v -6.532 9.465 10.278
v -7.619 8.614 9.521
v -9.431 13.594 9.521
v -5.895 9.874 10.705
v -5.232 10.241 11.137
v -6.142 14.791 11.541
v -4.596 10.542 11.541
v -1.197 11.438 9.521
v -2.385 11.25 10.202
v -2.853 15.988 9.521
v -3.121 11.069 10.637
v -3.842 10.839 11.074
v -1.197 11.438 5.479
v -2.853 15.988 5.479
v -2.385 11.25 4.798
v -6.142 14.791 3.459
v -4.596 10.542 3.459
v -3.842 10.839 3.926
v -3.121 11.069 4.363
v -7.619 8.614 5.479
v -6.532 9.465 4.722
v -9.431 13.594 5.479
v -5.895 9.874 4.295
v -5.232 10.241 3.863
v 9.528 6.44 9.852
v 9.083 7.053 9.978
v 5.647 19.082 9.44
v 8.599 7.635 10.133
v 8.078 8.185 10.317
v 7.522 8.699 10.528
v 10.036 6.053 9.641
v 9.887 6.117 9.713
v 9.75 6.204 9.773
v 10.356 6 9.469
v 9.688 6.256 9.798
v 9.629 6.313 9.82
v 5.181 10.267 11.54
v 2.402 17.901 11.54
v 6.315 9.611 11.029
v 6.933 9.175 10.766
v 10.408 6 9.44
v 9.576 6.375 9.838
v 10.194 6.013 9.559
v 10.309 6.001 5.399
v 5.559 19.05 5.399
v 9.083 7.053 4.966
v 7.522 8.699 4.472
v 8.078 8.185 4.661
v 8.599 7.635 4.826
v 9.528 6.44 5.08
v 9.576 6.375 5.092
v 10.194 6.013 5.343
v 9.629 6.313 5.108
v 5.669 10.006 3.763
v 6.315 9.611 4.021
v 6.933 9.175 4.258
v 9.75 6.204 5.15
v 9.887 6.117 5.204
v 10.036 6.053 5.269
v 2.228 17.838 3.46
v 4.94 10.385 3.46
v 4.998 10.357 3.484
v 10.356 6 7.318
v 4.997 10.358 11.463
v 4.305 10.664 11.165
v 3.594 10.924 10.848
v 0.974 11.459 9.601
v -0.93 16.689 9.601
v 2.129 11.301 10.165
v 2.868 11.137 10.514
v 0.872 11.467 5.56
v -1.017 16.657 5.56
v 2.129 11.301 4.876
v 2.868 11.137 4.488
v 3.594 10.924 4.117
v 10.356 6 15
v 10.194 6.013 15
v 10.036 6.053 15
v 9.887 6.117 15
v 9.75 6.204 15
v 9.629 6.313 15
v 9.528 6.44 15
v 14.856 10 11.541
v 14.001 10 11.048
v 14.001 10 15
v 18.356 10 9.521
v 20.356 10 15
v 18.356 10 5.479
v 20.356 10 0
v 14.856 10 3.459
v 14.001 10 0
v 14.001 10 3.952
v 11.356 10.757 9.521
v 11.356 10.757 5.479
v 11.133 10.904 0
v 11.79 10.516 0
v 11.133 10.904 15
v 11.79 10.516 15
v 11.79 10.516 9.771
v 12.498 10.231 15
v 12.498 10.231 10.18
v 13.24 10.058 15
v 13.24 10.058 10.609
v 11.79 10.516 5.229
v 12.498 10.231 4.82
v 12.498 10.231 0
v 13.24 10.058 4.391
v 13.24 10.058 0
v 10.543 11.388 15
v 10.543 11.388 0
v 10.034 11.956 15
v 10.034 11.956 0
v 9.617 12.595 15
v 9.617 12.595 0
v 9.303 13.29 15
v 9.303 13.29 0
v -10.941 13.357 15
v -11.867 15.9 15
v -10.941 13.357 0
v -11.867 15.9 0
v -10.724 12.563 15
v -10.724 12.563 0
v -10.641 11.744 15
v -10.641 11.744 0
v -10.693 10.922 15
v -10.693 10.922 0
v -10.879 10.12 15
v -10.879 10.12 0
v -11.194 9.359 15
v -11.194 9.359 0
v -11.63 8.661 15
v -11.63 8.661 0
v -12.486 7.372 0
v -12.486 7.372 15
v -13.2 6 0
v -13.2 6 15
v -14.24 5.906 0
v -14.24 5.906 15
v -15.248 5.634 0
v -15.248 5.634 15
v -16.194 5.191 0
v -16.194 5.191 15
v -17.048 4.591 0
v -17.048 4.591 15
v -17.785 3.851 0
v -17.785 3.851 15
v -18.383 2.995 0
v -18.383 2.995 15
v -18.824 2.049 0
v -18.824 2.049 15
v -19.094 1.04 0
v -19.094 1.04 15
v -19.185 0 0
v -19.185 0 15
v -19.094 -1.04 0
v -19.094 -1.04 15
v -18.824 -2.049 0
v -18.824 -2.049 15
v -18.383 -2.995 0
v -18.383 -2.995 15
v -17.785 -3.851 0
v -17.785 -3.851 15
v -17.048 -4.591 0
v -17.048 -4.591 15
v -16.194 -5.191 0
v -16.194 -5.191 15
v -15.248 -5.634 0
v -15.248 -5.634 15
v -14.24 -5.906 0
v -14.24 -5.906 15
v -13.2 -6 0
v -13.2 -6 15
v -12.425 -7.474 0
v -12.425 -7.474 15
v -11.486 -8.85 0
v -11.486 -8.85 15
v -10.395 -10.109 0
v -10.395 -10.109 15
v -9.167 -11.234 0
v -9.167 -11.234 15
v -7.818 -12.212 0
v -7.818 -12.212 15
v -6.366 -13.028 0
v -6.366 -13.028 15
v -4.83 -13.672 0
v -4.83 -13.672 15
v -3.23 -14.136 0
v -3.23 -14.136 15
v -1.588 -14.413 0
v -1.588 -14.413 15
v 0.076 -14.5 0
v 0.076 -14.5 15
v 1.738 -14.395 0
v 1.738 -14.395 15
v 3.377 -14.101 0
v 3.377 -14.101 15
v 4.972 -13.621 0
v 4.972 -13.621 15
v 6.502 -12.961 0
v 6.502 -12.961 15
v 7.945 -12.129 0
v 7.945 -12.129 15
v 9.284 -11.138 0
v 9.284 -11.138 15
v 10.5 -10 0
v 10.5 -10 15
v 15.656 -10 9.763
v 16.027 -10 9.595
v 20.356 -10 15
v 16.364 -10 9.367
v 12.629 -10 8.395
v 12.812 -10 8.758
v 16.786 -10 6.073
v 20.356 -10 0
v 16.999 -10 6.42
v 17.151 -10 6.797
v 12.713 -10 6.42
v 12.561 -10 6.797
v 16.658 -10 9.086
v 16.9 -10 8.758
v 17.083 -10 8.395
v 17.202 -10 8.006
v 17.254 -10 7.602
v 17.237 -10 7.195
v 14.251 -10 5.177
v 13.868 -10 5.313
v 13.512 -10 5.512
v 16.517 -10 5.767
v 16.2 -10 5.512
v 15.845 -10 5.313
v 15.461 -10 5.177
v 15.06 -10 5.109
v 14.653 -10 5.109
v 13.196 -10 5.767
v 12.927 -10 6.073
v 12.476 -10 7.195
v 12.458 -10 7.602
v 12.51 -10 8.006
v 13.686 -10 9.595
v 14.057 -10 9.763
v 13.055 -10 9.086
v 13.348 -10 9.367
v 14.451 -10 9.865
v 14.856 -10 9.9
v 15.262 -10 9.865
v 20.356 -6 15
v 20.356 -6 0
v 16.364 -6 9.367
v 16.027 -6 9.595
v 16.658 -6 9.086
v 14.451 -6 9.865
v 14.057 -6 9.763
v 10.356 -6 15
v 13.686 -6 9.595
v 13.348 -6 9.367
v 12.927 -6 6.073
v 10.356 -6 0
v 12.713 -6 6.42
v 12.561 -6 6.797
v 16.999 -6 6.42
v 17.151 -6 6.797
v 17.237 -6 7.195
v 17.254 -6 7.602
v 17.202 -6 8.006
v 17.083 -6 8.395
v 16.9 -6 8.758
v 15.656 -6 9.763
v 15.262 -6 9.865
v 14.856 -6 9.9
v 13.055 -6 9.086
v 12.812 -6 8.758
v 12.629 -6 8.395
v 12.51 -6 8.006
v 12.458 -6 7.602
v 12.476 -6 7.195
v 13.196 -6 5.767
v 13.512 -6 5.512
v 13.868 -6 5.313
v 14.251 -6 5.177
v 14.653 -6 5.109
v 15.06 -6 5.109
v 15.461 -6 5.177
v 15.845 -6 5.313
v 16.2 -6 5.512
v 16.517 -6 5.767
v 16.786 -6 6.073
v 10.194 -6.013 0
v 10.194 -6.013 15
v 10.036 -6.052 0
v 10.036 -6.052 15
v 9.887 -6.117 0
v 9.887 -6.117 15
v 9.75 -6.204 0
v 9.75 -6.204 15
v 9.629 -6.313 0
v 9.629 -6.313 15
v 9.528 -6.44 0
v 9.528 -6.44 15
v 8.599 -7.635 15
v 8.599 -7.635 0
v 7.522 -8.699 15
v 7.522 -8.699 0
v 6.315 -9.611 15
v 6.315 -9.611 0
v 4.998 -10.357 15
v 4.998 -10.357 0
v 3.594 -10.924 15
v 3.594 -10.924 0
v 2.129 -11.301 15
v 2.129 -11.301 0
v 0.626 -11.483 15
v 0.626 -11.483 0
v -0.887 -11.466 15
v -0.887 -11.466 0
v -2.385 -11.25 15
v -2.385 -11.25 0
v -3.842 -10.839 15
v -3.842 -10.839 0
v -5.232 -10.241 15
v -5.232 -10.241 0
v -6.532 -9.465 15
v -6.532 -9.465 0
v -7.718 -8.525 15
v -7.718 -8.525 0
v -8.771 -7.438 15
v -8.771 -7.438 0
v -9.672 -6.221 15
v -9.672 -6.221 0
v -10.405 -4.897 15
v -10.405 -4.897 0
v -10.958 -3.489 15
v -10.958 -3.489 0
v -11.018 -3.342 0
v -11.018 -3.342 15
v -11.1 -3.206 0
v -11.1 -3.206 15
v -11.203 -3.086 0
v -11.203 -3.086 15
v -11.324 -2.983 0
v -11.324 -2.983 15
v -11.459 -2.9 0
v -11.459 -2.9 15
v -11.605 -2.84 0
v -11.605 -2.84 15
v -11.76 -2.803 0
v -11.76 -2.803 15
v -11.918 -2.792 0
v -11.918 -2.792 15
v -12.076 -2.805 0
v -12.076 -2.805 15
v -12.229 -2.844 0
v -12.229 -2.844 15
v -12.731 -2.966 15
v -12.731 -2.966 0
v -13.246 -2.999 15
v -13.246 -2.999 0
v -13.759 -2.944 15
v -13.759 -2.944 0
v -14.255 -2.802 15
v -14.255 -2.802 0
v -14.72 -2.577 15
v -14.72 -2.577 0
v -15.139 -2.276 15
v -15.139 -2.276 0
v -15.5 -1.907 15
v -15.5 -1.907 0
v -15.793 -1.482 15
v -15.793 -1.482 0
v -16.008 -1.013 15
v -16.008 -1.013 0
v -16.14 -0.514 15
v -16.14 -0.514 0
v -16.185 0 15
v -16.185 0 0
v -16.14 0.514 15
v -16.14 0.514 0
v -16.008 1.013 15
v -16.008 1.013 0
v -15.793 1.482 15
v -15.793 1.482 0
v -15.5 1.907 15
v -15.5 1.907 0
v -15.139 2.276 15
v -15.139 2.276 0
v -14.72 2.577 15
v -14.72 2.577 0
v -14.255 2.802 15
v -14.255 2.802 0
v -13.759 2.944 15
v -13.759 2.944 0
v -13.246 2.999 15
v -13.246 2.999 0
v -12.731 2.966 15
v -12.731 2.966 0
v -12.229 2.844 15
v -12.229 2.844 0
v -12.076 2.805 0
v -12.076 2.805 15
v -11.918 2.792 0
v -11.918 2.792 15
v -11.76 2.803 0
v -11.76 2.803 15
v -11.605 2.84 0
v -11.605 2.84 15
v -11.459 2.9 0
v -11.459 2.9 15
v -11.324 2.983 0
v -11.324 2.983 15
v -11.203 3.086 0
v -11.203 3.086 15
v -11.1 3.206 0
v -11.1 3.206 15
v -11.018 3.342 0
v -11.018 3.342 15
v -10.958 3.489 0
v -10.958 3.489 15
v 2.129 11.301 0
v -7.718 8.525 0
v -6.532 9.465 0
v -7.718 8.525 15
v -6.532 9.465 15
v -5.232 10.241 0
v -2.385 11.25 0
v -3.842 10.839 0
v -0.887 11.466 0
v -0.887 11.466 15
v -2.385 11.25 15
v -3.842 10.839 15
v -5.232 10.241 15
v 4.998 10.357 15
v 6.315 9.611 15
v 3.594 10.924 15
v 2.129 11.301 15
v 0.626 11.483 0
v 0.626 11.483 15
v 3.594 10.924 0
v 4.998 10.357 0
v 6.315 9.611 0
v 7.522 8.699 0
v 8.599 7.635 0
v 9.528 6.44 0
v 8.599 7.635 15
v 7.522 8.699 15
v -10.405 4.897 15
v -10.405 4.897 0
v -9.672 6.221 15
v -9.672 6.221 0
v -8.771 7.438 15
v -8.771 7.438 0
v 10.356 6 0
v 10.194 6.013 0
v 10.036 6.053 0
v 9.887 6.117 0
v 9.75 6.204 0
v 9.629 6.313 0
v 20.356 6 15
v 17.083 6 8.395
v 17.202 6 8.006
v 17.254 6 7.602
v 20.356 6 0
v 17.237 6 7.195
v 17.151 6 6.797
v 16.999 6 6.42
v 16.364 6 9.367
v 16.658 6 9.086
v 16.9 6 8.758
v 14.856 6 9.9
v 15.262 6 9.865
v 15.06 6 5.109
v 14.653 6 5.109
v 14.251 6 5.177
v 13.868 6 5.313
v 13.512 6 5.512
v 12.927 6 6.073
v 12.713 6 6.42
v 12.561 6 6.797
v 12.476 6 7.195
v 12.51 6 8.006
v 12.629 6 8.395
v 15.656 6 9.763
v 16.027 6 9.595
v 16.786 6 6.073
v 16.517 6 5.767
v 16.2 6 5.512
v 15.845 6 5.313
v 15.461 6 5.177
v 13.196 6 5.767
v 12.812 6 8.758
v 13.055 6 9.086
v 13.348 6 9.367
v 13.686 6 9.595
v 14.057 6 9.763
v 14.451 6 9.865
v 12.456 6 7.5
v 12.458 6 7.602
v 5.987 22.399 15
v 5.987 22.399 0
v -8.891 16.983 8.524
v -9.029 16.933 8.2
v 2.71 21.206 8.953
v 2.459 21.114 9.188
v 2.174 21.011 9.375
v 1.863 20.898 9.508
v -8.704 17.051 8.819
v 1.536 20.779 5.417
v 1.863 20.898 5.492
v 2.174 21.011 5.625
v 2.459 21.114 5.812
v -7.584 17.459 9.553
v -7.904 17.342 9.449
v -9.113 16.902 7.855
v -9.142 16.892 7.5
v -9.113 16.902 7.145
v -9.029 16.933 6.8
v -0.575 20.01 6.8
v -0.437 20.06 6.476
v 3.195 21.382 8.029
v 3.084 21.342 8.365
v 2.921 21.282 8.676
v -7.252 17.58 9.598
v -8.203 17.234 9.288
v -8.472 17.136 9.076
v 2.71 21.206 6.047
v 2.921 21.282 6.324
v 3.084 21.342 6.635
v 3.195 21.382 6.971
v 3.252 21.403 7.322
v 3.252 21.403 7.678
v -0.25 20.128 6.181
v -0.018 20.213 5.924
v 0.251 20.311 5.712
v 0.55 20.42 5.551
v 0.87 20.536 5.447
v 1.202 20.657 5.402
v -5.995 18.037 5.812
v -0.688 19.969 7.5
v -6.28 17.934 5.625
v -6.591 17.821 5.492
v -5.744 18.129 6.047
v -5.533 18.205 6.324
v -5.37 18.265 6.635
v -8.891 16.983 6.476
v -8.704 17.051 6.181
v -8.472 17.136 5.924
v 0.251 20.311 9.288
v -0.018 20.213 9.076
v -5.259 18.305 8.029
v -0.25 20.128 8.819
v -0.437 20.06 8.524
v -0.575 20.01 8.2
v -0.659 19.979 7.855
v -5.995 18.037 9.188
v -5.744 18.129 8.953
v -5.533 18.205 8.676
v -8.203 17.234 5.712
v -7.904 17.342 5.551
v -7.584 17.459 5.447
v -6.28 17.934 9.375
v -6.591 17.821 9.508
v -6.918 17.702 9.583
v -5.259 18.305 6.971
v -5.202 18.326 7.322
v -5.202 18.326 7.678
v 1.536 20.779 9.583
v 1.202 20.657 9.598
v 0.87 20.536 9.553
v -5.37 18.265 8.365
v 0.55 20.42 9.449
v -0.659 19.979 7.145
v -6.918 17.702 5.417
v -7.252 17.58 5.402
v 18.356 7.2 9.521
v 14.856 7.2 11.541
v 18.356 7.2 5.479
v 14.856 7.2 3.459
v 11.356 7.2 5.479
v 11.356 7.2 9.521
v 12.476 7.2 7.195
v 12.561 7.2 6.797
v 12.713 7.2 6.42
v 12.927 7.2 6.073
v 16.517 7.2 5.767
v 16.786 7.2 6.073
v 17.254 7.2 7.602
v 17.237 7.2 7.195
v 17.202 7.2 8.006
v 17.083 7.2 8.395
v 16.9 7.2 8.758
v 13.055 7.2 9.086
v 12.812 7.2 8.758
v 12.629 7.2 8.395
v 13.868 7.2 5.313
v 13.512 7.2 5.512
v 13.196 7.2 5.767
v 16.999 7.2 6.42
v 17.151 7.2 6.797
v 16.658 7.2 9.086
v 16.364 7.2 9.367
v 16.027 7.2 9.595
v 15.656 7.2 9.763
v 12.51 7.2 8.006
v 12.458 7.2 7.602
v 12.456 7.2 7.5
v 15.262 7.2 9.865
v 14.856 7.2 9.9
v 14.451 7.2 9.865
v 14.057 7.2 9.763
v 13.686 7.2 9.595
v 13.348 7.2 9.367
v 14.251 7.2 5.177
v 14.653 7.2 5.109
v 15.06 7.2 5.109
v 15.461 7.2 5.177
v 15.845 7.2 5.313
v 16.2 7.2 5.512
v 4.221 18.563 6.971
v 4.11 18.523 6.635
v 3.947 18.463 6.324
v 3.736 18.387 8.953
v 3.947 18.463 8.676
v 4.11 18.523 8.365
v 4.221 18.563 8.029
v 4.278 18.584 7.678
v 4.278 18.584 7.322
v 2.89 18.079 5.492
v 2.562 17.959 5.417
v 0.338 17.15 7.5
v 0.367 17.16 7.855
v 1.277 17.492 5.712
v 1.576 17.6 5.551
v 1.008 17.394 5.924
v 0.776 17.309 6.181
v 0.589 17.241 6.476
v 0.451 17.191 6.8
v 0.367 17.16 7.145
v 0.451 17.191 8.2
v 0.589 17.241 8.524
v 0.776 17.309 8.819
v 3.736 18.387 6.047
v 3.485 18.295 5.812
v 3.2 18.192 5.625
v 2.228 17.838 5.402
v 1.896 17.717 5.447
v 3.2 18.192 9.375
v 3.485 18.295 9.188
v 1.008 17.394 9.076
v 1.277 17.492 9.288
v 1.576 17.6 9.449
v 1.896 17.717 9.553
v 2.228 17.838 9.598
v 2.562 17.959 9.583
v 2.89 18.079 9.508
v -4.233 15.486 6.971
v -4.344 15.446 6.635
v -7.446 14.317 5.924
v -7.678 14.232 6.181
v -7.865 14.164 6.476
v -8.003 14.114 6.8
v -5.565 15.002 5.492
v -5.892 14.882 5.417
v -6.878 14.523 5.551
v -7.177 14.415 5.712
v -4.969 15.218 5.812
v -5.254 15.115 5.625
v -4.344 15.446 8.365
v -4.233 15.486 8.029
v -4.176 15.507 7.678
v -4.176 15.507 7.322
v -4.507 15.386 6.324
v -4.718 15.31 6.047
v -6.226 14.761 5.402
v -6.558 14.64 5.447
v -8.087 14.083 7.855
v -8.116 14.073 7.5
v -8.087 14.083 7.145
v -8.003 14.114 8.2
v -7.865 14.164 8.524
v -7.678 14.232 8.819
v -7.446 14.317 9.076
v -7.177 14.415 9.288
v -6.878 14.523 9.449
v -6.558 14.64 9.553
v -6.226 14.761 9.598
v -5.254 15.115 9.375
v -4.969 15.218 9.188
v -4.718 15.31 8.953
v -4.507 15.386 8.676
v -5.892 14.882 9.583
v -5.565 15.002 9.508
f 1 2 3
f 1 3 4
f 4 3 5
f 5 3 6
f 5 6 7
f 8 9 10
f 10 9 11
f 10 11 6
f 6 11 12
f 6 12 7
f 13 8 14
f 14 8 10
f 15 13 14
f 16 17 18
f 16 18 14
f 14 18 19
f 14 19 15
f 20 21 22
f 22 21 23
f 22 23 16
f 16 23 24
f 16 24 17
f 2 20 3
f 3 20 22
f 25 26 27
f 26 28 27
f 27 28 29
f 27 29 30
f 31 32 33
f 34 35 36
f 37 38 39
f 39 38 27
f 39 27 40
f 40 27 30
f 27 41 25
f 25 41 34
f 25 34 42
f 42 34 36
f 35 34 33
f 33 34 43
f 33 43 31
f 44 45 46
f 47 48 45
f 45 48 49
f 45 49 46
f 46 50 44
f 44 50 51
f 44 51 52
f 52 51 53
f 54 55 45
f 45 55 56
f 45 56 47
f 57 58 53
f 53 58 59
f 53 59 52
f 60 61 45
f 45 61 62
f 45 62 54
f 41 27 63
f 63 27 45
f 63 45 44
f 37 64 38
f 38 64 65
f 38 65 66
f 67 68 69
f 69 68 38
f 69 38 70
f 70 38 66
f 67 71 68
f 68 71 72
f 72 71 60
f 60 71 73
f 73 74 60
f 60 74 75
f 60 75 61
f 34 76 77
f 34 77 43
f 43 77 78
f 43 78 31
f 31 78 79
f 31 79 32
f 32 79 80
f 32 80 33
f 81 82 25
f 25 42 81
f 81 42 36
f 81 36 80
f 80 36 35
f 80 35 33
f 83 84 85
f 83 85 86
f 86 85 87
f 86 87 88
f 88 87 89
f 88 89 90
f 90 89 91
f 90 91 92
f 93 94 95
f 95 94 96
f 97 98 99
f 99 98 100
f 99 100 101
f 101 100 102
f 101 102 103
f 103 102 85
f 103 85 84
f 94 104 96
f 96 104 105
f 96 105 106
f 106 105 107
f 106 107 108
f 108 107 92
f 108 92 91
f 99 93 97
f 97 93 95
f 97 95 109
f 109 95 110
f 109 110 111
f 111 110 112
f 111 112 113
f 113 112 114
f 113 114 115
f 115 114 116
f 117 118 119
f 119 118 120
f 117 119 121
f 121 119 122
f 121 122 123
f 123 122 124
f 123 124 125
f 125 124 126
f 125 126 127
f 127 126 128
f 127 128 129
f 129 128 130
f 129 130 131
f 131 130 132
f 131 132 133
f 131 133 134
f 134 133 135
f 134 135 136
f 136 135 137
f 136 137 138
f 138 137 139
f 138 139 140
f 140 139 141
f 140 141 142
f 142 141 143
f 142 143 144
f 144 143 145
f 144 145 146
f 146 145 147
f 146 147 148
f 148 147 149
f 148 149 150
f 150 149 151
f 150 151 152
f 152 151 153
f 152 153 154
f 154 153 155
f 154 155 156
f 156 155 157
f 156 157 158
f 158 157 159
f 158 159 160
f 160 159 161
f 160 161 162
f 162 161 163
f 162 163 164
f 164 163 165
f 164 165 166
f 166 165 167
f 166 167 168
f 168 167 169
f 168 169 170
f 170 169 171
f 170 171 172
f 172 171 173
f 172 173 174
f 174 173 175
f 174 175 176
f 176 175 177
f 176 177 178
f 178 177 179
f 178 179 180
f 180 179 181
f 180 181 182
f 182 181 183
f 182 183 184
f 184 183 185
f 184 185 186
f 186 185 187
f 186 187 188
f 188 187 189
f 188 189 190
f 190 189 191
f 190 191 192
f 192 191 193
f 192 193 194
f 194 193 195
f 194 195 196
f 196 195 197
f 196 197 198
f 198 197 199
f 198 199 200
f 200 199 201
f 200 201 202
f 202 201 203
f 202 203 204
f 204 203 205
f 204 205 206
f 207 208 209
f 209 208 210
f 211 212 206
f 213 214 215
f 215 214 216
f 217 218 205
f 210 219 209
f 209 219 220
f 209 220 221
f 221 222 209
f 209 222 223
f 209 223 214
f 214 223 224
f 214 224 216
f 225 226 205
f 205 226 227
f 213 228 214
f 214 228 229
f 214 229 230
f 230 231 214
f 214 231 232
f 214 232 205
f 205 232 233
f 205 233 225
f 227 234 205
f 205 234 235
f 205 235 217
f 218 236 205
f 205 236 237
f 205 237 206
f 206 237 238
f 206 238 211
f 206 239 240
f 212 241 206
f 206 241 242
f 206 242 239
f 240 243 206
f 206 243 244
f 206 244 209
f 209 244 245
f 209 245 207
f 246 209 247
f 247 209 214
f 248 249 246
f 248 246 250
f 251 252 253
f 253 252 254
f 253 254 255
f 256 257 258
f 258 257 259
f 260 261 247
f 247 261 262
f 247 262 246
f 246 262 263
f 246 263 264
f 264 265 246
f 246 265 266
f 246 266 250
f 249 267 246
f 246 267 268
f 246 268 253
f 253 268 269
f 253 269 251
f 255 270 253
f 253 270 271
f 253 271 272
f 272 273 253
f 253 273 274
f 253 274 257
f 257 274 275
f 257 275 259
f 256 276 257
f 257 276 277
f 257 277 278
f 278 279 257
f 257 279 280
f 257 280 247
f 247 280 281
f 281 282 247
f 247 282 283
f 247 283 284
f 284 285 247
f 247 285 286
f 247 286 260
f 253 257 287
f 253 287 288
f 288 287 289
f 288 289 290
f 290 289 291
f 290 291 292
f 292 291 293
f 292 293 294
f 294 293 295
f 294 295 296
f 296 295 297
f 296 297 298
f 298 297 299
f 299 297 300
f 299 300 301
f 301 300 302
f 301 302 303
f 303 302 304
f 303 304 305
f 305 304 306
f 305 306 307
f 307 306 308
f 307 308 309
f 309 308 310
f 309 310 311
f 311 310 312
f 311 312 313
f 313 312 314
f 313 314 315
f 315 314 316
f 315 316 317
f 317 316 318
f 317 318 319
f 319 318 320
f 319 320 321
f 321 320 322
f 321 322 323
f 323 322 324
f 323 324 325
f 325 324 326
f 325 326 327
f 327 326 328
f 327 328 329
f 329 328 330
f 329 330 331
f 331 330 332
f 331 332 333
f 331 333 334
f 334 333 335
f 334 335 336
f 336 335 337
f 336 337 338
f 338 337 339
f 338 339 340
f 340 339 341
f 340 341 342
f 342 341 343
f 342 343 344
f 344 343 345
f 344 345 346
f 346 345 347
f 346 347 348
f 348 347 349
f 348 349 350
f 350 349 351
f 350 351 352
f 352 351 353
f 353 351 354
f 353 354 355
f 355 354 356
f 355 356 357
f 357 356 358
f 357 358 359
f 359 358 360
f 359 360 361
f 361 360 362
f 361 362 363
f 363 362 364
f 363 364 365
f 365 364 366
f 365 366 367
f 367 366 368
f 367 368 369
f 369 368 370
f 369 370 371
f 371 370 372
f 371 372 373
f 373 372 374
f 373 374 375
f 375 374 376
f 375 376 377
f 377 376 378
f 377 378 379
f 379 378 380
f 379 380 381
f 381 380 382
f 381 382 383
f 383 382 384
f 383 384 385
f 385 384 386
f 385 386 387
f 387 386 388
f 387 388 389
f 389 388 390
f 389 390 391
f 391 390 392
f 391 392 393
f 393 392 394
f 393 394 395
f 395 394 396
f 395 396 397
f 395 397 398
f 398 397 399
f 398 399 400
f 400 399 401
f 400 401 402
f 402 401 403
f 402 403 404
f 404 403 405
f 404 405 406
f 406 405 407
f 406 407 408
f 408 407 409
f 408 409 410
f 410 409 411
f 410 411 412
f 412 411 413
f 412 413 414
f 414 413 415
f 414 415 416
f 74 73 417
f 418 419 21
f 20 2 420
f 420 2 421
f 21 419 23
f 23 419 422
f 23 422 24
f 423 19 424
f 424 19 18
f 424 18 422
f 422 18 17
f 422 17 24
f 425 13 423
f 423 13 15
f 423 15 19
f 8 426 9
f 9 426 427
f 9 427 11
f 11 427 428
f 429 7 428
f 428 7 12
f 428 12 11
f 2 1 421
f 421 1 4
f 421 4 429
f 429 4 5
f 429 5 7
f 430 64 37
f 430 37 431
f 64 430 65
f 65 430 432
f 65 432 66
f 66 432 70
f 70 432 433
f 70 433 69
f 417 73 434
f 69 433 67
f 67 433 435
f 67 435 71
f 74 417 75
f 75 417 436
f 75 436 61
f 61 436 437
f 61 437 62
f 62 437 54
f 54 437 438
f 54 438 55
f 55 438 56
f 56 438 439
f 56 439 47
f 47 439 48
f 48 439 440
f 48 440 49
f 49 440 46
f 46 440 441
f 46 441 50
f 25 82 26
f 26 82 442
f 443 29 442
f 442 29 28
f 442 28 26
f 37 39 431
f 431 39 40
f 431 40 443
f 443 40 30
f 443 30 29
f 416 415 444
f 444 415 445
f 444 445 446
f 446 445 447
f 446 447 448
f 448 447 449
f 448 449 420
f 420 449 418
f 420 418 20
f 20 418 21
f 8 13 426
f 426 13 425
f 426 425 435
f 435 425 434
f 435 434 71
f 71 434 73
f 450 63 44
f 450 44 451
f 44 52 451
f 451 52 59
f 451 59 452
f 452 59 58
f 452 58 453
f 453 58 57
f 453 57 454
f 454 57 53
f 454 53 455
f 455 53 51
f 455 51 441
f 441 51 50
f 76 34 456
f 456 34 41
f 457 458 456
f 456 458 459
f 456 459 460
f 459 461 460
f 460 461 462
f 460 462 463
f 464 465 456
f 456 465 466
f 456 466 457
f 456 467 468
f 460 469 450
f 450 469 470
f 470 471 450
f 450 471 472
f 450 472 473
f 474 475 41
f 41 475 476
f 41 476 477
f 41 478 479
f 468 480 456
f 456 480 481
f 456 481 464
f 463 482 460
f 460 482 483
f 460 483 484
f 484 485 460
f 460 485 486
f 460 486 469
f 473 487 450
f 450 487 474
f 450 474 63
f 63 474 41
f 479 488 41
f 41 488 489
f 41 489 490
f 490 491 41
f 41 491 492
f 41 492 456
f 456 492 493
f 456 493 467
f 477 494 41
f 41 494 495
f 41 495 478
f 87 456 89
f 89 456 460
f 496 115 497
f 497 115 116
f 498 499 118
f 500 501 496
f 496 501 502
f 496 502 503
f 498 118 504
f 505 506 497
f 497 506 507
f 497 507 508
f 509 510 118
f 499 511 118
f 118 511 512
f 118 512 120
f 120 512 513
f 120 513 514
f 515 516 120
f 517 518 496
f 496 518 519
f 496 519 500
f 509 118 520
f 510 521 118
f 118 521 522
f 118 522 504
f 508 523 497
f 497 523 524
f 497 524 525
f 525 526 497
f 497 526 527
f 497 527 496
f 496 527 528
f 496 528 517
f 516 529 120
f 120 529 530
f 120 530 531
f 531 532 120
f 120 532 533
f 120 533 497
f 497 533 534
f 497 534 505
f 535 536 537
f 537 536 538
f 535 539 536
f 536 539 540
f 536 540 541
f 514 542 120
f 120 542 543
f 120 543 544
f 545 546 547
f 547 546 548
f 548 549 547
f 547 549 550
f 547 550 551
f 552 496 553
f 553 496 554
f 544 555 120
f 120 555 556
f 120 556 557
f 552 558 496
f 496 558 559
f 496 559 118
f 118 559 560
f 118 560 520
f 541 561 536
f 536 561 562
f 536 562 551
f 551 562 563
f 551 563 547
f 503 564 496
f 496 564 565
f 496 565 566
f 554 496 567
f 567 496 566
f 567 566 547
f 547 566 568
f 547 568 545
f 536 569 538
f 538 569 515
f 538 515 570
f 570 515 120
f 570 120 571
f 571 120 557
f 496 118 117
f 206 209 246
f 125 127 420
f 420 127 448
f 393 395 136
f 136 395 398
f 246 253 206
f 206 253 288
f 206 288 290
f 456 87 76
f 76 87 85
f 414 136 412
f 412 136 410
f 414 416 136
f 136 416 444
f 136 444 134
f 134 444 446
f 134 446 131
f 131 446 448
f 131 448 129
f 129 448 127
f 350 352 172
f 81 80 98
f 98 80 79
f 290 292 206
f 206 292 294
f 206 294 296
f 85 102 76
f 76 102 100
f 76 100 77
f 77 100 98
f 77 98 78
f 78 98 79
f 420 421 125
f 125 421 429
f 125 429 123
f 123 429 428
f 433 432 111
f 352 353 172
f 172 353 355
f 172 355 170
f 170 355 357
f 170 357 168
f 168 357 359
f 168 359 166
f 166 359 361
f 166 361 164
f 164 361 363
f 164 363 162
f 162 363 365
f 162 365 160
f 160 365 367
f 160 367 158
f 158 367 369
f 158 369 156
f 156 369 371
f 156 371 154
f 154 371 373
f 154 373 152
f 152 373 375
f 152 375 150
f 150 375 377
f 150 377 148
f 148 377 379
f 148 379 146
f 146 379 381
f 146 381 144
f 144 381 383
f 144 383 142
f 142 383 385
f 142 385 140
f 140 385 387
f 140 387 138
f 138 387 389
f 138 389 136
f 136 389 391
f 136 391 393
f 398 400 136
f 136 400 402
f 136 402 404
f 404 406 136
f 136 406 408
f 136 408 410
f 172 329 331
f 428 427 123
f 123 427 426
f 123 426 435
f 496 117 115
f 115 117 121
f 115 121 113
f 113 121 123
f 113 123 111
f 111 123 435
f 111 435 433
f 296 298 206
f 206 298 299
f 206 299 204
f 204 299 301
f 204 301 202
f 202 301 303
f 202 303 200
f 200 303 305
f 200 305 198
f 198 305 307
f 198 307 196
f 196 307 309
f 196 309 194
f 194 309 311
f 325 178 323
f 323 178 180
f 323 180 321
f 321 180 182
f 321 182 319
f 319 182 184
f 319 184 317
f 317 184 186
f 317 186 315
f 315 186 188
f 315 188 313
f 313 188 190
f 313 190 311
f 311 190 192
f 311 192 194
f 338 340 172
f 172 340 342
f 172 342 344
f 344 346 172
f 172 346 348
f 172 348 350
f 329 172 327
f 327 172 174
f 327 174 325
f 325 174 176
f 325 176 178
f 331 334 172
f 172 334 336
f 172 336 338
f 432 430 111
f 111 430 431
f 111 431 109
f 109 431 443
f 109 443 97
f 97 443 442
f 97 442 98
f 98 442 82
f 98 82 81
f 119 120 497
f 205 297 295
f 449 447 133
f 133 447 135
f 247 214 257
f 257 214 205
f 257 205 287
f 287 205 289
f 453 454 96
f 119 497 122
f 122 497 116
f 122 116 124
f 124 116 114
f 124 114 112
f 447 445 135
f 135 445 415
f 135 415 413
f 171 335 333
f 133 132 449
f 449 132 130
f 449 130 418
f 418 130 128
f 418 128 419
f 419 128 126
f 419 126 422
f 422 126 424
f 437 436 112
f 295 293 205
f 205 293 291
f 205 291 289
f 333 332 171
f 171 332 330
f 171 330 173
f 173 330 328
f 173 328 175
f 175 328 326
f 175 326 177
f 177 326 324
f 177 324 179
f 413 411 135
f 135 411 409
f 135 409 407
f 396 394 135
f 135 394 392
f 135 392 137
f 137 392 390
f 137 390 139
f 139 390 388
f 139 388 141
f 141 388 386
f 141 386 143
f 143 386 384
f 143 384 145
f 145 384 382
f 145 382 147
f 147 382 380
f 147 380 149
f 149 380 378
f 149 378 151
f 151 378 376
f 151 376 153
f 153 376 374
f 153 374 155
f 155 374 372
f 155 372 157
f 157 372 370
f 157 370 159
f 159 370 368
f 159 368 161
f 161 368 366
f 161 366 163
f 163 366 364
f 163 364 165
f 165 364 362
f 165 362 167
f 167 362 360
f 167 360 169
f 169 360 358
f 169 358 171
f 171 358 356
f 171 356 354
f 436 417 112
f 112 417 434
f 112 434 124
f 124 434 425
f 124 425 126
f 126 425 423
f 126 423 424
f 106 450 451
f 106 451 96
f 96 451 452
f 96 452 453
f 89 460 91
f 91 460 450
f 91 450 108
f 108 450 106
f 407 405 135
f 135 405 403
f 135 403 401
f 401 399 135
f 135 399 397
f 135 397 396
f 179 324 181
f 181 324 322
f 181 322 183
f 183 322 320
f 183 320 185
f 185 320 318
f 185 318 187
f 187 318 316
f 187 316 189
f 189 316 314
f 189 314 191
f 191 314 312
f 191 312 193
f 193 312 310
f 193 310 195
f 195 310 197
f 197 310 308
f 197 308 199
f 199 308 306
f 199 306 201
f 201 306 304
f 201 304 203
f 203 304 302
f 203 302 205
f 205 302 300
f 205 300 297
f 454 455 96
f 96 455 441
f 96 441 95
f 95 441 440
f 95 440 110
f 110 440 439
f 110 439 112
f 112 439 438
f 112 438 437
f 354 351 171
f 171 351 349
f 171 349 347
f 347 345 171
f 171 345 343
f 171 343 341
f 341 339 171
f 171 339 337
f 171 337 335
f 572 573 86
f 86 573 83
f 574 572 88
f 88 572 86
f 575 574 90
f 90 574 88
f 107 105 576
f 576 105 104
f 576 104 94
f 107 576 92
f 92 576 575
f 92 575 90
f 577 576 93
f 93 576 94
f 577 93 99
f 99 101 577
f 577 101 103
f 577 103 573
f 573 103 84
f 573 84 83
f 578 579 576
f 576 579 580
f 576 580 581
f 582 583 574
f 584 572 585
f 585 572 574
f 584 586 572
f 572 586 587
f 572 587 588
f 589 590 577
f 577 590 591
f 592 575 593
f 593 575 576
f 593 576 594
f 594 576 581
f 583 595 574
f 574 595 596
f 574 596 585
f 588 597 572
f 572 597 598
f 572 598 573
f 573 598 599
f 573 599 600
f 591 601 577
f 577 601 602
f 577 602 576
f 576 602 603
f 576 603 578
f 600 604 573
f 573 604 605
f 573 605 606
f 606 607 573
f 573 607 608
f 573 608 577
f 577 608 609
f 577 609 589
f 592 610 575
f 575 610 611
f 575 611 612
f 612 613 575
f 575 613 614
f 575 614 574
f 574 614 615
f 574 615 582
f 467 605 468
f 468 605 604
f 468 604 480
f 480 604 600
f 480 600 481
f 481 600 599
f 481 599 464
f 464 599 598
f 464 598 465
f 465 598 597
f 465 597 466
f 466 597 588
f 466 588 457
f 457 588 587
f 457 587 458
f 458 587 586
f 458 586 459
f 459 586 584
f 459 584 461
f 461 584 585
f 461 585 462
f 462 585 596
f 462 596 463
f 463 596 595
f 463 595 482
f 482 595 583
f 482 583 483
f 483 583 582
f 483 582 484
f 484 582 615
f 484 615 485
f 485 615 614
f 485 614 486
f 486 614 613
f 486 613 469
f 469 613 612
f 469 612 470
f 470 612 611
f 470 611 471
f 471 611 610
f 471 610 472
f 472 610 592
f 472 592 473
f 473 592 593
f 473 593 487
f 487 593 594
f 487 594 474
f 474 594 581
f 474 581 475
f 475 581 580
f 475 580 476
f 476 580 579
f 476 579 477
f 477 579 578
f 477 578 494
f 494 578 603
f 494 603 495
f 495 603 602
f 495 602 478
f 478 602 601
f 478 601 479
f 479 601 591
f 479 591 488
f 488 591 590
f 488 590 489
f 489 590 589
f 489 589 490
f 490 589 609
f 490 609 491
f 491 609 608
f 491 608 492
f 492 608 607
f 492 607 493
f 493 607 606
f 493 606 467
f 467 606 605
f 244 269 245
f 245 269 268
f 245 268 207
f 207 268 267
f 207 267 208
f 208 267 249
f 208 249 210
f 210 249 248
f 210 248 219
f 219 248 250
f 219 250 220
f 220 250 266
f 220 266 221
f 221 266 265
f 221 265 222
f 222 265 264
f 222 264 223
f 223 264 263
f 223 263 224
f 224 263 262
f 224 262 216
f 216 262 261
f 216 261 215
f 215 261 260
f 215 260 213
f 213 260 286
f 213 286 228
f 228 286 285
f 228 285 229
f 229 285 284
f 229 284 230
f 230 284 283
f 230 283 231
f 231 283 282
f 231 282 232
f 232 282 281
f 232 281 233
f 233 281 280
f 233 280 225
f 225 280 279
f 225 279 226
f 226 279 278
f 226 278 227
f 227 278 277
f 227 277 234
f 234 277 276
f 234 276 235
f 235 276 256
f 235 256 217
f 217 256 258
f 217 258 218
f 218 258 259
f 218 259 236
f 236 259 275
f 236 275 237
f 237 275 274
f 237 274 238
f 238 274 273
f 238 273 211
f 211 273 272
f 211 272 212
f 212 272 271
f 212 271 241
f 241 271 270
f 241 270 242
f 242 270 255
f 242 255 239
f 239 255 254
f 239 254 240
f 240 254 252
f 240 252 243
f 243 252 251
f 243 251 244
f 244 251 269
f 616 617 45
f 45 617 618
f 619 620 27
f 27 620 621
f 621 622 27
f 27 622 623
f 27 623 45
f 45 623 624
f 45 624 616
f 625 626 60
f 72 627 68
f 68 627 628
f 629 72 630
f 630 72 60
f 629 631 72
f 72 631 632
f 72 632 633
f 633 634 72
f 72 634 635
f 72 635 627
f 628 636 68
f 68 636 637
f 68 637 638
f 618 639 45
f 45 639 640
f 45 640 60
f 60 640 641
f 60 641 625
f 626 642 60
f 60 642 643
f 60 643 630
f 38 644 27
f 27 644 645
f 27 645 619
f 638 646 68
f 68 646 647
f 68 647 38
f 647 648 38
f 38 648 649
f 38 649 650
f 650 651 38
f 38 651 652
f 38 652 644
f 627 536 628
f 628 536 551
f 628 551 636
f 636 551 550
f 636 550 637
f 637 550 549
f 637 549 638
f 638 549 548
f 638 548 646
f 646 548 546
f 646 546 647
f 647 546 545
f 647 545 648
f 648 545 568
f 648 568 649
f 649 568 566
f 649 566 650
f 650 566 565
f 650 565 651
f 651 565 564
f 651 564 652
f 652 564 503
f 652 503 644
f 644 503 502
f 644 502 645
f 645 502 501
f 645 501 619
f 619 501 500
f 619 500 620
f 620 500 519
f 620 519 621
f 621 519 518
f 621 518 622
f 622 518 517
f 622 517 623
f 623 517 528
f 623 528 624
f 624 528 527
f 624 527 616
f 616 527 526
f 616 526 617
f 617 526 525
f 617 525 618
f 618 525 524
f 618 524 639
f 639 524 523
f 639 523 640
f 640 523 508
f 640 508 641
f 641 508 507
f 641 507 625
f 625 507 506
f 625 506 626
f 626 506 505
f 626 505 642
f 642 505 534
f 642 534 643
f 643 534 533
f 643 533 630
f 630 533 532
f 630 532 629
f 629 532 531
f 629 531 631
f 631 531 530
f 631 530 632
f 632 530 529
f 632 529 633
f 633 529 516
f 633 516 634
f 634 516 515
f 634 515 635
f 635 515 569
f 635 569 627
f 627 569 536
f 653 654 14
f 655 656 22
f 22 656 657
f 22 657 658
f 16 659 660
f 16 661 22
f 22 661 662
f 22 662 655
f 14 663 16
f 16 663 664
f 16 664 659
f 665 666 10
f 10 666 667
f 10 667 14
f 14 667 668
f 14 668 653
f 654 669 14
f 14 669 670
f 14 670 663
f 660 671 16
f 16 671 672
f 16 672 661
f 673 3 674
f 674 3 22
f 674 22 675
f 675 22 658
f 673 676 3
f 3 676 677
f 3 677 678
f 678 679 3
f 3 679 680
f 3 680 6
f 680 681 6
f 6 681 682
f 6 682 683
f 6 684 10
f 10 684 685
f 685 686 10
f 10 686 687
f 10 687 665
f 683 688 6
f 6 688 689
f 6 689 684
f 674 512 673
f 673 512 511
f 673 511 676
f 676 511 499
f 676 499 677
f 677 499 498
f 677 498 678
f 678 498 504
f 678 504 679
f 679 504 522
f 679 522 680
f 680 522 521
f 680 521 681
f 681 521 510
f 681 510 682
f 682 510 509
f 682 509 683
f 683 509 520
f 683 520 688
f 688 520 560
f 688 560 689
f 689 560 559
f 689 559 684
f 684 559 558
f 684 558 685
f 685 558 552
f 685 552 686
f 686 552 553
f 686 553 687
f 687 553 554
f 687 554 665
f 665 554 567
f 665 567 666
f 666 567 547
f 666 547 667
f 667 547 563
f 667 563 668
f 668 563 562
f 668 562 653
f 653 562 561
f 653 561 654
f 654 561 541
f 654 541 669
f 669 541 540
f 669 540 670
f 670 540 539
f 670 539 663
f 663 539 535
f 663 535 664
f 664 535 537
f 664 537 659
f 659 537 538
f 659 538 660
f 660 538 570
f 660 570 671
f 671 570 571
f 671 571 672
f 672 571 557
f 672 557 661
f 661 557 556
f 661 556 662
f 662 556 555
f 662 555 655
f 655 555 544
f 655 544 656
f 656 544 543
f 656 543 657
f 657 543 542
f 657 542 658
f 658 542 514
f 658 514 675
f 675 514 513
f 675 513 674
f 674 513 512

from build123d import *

# Parameters (mm, degrees)
BOSS_EXTRU_1_DEPTH           = 15
ENL_V_MAT_EXTRU_1_DEPTH      = 3
ENL_V_MAT_EXTRU_1_DEPTH_BACK = 2.8
D_GAGEMENT_M42_D             = 4.8
ENL_V_MAT_EXTRU_2_REACH      = 46.643
ESQUISSE11_W                 = 17.14444817
ESQUISSE11_H                 = 8.906875476
ESQUISSE11_R                 = 2.1
BOSS_EXTRU_2_DEPTH           = 3


# Read off the part's stored shape, not the designer's step: Boss.-Extru.1
with BuildPart() as part:
    # Boss.-Extru.1 outline → Boss.-Extru.1 (new body)
    with BuildSketch(Plane.XY):
        with BuildLine():
            Line((5.987288652, 22.39857253), (-11.866871143, 15.900189807))
            Line((-11.866871143, 15.900189807), (-10.941224384, 13.356996238))
            ThreePointArc((-10.941224384, 13.356996238), (-10.69253266, 10.921872002), (-11.629511209, 8.660512054))
            ThreePointArc((-11.629511209, 8.660512054), (-12.486015657, 7.372205437), (-13.200388341, 5.99997897))
            ThreePointArc((-13.200388341, 5.99997897), (-19.184502611, 0), (-13.200388341, -5.99997897))
            ThreePointArc((-13.200388341, -5.99997897), (-2.413103056, -14.297794713), (10.5, -10))
            Line((10.5, -10), (20.356157589, -10))
            Line((20.356157589, -10), (20.356157589, -6))
            Line((20.356157589, -6), (10.356157589, -6))
            ThreePointArc((10.356157589, -6), (9.887116013, -6.116823913), (9.527664982, -6.44))
            ThreePointArc((9.527664982, -6.44), (-1.63993081, -11.38247016), (-10.958116089, -3.488508533))
            ThreePointArc((-10.958116089, -3.488508533), (-11.458744879, -2.899966328), (-12.229372464, -2.843892826))
            ThreePointArc((-12.229372464, -2.843892826), (-16.184502611, 0), (-12.229372464, 2.843892826))
            ThreePointArc((-12.229372464, 2.843892826), (-11.458744879, 2.899966328), (-10.958116089, 3.488508533))
            ThreePointArc((-10.958116089, 3.488508533), (-1.63993081, 11.38247016), (9.527664982, 6.44))
            ThreePointArc((9.527664982, 6.44), (9.887116013, 6.116823913), (10.356157589, 6))
            Line((10.356157589, 6), (20.356157589, 6))
            Line((20.356157589, 6), (20.356157589, 10))
            Line((20.356157589, 10), (14.001037691, 10))
            ThreePointArc((14.001037691, 10), (11.133155509, 10.904239779), (9.302574587, 13.289899283))
            Line((9.302574587, 13.289899283), (5.987288652, 22.39857253))
        make_face()
    extrude(amount=BOSS_EXTRU_1_DEPTH)

    # Esquisse5 → Enlèv. mat.-Extru.1 (cut, two sides: drawn at the far end of the back side and taken through both)
    with BuildSketch(Plane(origin=(0, 10, 0), x_dir=(1, 0, 0), z_dir=(0, 1, 0)).offset(-ENL_V_MAT_EXTRU_1_DEPTH_BACK)):
        Polygon((18.356157589, -9.520725942), (18.356157589, -5.479274058), (14.856157589, -3.458548116), (11.356157589, -5.479274058), (11.356157589, -9.520725942), (14.856157589, -11.541451884), align=None)
    extrude(amount=ENL_V_MAT_EXTRU_1_DEPTH + ENL_V_MAT_EXTRU_1_DEPTH_BACK, mode=Mode.SUBTRACT)

    # Dégagement M42 (through all)
    with Locations(Plane(origin=(0, 10, 0), x_dir=(1, 0, 0), z_dir=(0, 1, 0))):
        with Locations((14.856157589, -7.5)):
            Hole(D_GAGEMENT_M42_D / 2)

    # Esquisse10 → Enlèv. mat.-Extru.2 (cut, up to next)
    with BuildSketch(Plane(origin=(-6.498382723, 17.854159795, 0), x_dir=(0.9396926207859082, 0.3420201433256695, 0), z_dir=(-0.3420201433256695, 0.9396926207859082, 0)), mode=Mode.PRIVATE) as enl_v_mat_extru_2_sk1:
        Polygon((-4.213026048, -9.520725942), (-0.713026048, -11.541451884), (2.786973952, -9.520725942), (2.786973952, -5.479274058), (-0.713026048, -3.458548116), (-4.213026048, -5.479274058), align=None)
    enl_v_mat_extru_2_tool1 = extrude(enl_v_mat_extru_2_sk1.sketch, amount=-ENL_V_MAT_EXTRU_2_REACH, mode=Mode.PRIVATE) & part.part
    # Esquisse10 → Enlèv. mat.-Extru.2 (cut, up to next)
    with BuildSketch(Plane(origin=(-6.498382723, 17.854159795, 0), x_dir=(0.9396926207859082, 0.3420201433256695, 0), z_dir=(-0.3420201433256695, 0.9396926207859082, 0)), mode=Mode.PRIVATE) as enl_v_mat_extru_2_sk2:
        Polygon((11.832491793, -9.439751676), (11.739607101, -5.399367318), (8.194089259, -3.459615641), (4.74145611, -5.560248324), (4.834340802, -9.600632682), (8.379858644, -11.540384359), align=None)
    enl_v_mat_extru_2_tool2 = extrude(enl_v_mat_extru_2_sk2.sketch, amount=-ENL_V_MAT_EXTRU_2_REACH, mode=Mode.PRIVATE) & part.part
    add(enl_v_mat_extru_2_tool1.solids().sort_by_distance((-7.168408, 17.610291, 7.5))[0], mode=Mode.SUBTRACT)
    add(enl_v_mat_extru_2_tool2.solids().sort_by_distance((1.288826, 20.688472, 7.5))[0], mode=Mode.SUBTRACT)

    # Esquisse11 → Boss.-Extru.2 (add)
    with BuildSketch(Plane(origin=(-6.498382723, 17.854159795, 0), x_dir=(0.9396926207859082, 0.3420201433256694, 0), z_dir=(-0.3420201433256694, 0.9396926207859083, 0))):
        with Locations((3.831914323, -7.577227244)):
            Rectangle(ESQUISSE11_W, ESQUISSE11_H)
        with Locations(Location((-0.713026048, -7.5, 0), (0, 0, 180))):
            Circle(ESQUISSE11_R, mode=Mode.SUBTRACT)
        with Locations(Location((8.283576678, -7.5, 0), (0, 0, 180))):
            Circle(ESQUISSE11_R, mode=Mode.SUBTRACT)
    extrude(amount=-BOSS_EXTRU_2_DEPTH)


solid = part.part
